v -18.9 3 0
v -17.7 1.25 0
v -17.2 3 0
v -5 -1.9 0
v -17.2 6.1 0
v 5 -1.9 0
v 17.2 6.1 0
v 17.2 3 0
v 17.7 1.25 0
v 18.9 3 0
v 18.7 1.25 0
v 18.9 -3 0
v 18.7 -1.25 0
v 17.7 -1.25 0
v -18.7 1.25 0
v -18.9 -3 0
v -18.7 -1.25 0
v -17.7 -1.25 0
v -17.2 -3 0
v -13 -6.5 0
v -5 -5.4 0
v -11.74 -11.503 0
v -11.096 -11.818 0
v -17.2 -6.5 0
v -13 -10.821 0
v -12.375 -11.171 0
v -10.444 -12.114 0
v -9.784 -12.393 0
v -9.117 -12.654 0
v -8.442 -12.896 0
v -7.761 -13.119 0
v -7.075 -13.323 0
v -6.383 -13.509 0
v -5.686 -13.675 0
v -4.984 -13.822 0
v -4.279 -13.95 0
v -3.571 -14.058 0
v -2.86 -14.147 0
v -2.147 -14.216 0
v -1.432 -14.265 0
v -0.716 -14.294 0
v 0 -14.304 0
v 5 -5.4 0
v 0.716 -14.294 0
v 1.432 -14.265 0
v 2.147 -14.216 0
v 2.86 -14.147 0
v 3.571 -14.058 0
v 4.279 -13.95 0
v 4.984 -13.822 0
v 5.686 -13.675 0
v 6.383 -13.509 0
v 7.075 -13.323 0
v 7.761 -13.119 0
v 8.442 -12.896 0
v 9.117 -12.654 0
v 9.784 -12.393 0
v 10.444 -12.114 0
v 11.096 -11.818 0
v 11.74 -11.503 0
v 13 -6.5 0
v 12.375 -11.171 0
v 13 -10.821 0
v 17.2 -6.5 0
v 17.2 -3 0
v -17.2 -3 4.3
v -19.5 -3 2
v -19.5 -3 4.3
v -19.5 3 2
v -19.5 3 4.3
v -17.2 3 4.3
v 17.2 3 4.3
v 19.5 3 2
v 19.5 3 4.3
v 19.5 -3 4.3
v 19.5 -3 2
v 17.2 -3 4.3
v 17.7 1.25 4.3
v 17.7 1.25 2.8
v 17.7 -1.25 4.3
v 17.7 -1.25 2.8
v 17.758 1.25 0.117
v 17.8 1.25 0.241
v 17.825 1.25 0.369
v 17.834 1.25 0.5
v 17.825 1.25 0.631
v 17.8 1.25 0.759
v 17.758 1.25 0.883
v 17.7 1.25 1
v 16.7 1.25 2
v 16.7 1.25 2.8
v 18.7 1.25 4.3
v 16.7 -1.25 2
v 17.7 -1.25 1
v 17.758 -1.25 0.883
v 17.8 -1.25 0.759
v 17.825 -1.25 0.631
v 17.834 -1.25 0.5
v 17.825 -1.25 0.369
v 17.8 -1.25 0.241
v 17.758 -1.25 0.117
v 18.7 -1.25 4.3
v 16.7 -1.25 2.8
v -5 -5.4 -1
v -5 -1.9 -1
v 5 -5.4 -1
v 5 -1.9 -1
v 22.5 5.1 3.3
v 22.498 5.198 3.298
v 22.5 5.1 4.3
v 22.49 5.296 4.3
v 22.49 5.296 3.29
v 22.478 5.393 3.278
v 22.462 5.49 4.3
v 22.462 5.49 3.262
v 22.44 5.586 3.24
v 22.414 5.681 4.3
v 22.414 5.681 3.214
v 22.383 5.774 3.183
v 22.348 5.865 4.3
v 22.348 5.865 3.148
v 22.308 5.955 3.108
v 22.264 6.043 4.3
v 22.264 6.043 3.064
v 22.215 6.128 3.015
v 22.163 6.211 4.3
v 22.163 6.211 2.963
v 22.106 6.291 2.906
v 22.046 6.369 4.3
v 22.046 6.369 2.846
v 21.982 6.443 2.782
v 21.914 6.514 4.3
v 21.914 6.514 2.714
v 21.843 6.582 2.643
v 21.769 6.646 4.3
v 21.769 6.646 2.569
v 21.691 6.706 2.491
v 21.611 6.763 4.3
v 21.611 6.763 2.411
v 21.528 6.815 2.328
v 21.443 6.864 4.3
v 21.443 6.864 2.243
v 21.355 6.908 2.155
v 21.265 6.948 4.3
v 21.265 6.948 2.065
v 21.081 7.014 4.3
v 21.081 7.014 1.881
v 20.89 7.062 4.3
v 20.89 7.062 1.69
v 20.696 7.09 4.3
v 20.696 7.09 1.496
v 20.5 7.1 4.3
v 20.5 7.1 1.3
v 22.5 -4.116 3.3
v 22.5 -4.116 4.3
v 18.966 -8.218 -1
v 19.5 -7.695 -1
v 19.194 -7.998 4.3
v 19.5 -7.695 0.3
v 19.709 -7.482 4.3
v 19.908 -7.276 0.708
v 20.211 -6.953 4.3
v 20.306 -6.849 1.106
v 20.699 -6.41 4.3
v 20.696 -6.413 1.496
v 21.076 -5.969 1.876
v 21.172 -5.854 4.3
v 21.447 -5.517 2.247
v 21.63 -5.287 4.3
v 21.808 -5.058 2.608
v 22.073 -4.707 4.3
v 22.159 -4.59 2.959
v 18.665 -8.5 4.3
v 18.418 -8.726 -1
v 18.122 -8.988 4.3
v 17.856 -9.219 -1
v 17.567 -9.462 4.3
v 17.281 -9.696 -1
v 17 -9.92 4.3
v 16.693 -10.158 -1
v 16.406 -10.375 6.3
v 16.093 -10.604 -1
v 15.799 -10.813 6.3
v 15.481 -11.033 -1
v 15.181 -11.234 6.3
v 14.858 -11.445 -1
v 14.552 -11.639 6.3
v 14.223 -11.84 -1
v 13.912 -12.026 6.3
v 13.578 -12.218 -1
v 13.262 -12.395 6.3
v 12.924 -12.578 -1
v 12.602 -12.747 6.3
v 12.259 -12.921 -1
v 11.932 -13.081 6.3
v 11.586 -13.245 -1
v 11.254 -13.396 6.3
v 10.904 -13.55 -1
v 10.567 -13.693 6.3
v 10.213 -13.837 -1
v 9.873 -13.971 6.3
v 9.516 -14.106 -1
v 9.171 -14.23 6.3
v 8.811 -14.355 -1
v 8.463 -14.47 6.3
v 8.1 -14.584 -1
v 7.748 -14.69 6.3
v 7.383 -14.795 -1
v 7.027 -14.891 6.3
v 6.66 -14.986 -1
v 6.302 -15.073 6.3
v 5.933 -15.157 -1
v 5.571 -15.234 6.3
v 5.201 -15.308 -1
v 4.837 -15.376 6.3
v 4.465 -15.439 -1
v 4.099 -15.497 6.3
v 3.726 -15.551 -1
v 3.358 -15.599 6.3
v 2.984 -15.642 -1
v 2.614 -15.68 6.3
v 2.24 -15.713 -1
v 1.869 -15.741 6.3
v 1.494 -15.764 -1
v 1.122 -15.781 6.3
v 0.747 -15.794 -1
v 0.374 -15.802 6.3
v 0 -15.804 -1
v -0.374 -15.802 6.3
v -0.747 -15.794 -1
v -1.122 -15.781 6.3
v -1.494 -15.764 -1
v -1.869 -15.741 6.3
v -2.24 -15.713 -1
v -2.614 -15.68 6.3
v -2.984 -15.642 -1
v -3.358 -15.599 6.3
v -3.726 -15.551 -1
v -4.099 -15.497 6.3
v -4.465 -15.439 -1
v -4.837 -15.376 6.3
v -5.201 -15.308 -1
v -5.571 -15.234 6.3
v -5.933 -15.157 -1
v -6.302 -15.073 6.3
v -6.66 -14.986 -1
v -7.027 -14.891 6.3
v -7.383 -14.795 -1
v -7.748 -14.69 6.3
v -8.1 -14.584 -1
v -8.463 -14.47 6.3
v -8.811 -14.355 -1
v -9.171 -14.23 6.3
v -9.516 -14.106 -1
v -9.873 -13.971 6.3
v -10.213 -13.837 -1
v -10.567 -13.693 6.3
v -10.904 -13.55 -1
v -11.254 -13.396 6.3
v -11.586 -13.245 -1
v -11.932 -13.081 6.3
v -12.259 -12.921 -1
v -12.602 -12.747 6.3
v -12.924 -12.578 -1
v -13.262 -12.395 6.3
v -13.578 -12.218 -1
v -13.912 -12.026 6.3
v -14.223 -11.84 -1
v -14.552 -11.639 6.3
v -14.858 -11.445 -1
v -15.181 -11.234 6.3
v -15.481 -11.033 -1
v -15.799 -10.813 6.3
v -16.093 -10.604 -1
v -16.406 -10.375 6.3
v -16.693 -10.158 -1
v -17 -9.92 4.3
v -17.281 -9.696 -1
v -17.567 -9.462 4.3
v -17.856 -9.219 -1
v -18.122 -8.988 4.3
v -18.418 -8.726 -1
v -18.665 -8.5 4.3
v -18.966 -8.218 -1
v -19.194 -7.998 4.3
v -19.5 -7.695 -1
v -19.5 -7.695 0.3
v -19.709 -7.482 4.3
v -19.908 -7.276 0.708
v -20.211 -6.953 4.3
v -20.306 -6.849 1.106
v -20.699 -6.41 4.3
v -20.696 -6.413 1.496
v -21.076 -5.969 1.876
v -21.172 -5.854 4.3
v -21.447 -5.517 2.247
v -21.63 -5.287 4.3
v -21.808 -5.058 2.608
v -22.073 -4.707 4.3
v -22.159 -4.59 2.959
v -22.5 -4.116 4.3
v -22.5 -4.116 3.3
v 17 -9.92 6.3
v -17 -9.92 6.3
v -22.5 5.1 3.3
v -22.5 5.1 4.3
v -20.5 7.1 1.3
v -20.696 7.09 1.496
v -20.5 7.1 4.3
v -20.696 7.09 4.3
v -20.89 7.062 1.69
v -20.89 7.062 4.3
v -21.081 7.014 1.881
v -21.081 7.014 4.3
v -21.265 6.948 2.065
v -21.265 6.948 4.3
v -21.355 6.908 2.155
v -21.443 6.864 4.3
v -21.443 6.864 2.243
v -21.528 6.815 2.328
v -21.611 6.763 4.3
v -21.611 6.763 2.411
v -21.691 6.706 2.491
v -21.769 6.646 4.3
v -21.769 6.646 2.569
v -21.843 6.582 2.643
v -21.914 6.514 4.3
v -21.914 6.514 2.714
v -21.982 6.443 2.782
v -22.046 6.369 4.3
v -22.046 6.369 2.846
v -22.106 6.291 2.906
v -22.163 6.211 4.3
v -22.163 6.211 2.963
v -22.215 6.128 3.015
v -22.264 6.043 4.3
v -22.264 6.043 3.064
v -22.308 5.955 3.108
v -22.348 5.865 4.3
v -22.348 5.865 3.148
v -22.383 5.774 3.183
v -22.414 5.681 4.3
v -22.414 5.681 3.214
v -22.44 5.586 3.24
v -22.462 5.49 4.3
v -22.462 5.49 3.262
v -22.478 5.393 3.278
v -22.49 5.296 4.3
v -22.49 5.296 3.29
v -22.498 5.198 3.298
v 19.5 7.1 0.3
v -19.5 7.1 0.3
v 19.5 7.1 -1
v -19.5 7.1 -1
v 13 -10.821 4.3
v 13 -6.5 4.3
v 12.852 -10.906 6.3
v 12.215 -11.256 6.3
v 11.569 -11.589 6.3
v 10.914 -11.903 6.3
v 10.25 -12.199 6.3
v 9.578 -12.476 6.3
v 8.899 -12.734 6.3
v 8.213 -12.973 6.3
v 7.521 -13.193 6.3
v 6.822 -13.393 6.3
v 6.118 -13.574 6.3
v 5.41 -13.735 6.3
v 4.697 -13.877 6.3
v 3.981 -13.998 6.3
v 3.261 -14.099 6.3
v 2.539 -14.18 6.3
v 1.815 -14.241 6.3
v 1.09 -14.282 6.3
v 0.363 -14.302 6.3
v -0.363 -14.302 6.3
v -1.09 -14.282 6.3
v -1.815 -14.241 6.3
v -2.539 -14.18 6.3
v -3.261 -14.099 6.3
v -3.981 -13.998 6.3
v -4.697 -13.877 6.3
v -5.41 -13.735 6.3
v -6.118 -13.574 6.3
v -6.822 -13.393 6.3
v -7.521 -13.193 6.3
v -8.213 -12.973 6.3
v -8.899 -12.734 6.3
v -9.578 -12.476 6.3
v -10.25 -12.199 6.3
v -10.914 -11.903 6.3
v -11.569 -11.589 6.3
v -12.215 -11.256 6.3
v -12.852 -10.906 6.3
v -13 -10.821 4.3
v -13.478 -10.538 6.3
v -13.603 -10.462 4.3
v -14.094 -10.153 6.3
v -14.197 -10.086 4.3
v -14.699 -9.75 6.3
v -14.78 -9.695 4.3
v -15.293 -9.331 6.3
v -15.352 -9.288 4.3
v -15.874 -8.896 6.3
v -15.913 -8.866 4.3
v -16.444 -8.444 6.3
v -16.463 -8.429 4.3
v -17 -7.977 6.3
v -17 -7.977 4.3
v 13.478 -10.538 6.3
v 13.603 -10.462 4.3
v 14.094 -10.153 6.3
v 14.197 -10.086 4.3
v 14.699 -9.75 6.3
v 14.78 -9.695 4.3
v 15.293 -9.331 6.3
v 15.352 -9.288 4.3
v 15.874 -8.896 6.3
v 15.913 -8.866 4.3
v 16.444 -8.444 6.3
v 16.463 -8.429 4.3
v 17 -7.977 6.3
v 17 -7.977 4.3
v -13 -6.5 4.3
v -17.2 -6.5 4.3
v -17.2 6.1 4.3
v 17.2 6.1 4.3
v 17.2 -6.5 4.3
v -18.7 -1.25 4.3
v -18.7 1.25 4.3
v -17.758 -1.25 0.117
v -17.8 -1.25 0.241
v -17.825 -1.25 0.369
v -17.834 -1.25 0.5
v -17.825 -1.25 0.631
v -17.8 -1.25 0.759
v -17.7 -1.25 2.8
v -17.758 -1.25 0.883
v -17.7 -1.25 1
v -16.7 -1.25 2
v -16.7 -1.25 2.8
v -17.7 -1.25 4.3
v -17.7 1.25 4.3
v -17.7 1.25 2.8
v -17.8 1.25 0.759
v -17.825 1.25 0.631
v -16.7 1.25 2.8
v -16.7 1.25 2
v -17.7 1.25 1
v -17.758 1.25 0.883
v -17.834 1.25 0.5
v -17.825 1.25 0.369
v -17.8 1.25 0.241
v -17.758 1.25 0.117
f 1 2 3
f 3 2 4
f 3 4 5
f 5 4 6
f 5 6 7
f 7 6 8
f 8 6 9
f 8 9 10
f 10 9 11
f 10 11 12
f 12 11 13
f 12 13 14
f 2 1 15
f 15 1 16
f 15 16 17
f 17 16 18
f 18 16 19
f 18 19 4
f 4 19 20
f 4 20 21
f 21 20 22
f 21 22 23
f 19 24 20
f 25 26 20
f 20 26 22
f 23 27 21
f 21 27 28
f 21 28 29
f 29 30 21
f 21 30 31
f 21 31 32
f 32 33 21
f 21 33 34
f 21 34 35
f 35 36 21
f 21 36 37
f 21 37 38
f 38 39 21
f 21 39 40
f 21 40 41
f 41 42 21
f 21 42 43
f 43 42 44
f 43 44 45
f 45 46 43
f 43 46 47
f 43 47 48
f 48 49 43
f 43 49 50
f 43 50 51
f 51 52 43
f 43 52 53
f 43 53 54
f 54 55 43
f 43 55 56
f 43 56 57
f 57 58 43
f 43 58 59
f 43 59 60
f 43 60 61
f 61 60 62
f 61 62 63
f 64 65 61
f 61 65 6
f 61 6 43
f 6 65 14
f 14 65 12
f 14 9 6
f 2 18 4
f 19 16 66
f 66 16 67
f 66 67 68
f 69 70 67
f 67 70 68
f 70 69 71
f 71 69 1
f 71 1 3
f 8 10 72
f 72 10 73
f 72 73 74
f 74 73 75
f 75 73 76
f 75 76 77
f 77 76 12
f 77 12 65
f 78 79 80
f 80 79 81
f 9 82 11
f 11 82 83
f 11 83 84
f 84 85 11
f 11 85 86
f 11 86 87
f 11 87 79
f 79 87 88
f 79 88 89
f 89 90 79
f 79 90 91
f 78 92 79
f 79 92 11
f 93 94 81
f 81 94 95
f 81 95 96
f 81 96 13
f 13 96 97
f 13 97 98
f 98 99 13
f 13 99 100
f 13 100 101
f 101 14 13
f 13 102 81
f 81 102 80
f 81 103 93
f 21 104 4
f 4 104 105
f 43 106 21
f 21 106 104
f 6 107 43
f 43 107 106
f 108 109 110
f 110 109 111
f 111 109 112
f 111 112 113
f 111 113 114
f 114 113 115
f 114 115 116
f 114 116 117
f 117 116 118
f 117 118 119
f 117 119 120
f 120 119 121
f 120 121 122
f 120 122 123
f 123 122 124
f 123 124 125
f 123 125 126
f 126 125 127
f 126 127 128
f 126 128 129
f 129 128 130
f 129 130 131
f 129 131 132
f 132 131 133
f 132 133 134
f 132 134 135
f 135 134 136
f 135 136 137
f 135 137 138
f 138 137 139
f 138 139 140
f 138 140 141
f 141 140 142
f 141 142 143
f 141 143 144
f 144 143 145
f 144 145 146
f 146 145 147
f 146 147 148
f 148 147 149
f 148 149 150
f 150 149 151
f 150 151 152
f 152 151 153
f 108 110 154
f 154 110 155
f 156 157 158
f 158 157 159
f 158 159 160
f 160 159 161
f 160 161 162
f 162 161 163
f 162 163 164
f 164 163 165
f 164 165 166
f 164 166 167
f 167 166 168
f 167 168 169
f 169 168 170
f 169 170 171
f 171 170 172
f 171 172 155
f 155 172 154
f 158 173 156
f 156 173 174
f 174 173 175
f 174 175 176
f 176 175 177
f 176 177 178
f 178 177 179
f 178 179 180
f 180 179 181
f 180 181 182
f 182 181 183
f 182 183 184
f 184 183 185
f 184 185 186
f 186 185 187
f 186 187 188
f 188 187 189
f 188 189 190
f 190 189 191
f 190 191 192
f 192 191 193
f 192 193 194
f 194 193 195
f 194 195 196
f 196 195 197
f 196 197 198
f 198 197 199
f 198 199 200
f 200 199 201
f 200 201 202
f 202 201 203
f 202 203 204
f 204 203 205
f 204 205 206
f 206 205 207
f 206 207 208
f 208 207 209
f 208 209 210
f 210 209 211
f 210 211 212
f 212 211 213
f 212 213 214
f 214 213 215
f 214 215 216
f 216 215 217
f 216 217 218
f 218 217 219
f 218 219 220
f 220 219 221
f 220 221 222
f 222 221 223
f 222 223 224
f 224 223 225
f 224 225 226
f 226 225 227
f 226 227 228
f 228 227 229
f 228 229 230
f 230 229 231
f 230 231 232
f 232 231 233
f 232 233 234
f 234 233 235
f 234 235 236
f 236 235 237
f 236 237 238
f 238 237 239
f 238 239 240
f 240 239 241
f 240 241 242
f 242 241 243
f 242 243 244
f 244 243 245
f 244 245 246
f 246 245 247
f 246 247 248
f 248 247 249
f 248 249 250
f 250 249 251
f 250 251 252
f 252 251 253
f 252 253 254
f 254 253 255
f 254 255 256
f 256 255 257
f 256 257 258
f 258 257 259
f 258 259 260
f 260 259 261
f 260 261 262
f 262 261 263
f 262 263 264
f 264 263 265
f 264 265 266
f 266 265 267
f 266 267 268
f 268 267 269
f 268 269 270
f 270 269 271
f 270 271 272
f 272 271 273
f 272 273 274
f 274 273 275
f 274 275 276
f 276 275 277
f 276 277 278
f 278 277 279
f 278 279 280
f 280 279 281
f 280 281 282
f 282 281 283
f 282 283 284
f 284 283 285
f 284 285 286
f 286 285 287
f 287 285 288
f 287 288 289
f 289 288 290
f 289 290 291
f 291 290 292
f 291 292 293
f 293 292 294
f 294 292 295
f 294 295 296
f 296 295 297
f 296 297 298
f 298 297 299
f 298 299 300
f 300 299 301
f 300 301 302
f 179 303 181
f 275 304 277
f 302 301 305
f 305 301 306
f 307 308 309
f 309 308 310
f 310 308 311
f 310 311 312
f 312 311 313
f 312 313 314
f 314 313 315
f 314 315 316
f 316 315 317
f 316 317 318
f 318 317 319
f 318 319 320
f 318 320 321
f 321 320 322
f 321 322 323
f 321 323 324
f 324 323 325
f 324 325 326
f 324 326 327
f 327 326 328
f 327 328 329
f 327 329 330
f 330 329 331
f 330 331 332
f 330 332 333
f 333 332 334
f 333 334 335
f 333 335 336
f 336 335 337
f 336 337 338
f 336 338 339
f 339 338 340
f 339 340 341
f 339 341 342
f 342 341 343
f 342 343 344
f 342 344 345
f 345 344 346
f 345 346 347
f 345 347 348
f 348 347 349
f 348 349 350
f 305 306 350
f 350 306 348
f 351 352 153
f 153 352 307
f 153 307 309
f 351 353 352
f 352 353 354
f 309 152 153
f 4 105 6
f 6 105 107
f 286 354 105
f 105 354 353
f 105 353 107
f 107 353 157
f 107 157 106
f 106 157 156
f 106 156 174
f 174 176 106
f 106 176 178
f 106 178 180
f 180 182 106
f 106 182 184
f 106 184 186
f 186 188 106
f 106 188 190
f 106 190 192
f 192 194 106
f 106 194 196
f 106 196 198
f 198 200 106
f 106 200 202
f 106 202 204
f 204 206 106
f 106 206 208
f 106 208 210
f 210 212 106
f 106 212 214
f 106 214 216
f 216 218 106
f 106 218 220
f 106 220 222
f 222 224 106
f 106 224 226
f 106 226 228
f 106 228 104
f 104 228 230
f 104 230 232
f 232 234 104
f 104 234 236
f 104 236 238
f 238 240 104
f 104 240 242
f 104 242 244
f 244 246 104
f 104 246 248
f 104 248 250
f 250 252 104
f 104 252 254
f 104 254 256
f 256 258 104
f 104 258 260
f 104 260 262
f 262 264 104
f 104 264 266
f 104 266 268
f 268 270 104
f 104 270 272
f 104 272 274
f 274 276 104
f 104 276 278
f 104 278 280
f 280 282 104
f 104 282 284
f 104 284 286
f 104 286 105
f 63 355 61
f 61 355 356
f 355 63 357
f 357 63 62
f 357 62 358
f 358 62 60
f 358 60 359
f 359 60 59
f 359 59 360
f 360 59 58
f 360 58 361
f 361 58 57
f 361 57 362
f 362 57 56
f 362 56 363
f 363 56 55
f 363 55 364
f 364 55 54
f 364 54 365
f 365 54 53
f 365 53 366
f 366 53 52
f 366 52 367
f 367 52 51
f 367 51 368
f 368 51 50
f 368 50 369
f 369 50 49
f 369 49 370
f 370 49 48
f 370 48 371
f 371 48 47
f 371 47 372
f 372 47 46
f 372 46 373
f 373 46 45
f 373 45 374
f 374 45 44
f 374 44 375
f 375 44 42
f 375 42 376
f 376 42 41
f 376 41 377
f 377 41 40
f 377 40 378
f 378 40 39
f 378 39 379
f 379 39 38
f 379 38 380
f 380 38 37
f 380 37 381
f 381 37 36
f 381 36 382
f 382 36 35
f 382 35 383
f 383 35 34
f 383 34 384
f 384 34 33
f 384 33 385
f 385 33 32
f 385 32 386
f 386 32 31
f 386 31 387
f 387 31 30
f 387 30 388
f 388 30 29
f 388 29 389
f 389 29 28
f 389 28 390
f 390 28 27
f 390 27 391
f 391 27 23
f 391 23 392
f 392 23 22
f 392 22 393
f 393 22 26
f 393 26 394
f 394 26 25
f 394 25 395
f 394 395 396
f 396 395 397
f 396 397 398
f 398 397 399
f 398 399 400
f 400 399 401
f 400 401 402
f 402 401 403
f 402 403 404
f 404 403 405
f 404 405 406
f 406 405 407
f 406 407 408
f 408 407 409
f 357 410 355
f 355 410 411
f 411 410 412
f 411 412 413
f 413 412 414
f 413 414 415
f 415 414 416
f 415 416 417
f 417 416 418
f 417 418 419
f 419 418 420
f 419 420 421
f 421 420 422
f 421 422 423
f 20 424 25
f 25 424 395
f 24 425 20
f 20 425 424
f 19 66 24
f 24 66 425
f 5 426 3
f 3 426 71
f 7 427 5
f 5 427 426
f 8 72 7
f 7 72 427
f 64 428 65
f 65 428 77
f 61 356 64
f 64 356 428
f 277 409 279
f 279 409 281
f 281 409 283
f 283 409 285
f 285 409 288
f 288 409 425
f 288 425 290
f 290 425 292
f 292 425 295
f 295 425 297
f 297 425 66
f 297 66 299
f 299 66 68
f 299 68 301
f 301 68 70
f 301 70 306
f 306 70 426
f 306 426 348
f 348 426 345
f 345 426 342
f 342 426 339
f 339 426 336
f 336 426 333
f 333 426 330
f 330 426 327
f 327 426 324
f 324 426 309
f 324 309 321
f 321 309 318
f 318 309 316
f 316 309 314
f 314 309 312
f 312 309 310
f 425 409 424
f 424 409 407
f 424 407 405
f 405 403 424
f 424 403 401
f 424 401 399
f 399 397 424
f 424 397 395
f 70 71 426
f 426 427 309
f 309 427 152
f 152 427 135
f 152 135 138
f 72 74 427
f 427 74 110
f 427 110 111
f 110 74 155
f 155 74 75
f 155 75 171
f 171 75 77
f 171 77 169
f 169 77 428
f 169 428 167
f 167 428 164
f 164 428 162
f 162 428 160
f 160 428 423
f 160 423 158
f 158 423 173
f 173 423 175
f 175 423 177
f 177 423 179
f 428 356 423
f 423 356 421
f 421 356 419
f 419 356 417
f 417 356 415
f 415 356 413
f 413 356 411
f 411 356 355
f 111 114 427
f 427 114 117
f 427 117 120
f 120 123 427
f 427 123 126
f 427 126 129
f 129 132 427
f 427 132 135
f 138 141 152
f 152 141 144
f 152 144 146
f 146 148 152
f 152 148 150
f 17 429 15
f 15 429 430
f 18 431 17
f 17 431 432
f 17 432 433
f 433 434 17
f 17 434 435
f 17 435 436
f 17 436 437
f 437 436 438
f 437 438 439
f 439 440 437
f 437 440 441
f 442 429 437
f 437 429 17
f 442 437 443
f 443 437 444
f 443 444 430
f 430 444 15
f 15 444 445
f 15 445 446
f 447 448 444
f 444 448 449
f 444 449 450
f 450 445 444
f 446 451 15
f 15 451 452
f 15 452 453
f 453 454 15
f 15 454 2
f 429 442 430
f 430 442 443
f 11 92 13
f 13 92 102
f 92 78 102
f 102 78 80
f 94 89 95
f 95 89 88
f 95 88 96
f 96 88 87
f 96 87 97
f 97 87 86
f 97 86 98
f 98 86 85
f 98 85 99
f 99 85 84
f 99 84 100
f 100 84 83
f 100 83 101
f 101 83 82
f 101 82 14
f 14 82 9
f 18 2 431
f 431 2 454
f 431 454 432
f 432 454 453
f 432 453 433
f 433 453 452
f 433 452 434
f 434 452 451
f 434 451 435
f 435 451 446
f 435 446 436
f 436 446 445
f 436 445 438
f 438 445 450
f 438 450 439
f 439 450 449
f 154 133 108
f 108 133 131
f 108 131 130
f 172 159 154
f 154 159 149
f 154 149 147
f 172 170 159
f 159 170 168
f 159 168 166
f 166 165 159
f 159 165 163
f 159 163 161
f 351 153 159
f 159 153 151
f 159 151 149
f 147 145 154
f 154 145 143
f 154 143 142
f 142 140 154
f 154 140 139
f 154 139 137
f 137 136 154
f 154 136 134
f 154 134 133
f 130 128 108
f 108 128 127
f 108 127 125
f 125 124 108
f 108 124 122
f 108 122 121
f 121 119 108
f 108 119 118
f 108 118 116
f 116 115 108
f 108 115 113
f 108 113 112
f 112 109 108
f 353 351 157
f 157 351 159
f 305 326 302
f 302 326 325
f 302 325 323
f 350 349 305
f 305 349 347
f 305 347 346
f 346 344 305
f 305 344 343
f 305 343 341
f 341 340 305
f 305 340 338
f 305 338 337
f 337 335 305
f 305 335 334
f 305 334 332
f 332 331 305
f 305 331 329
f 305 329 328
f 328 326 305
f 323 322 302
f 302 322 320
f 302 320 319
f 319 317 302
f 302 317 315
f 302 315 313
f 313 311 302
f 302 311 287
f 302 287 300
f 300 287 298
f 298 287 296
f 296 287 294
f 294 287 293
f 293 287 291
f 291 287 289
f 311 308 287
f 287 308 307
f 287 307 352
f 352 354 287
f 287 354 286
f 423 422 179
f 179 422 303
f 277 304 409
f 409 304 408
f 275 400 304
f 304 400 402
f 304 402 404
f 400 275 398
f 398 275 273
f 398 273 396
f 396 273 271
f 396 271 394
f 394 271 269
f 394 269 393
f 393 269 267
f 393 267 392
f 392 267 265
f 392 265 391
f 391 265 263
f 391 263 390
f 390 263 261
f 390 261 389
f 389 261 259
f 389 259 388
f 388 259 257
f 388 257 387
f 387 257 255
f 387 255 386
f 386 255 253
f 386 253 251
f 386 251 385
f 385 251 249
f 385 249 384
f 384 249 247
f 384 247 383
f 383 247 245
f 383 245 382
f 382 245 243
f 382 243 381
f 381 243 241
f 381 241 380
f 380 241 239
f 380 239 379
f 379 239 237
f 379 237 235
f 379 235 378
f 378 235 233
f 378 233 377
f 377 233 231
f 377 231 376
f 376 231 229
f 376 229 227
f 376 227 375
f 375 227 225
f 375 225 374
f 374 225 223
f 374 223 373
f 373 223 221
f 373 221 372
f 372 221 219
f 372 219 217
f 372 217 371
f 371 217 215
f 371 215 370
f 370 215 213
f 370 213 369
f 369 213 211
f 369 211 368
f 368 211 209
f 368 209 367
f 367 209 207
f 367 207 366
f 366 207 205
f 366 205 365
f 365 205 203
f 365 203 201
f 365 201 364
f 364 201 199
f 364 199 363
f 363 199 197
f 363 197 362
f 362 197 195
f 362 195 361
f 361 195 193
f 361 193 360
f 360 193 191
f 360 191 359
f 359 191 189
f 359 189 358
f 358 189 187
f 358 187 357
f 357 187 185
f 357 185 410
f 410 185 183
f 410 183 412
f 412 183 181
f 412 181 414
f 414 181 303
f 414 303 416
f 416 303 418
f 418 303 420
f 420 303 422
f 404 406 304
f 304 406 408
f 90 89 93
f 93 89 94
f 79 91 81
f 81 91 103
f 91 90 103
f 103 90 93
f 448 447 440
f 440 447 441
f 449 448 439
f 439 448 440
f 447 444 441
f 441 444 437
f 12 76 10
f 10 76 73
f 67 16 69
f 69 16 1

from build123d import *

# Parameters (mm, degrees)
SKETCH1_W           = 1
SKETCH1_H           = 2.5
SKETCH1_W_2         = 10
SKETCH1_H_2         = 3.5
BOSS_EXTRUDE1_DEPTH = 1
BOSS_EXTRUDE2_START = 4.3
SKETCH1_3_W         = 1
SKETCH1_3_H         = 2.5
BOSS_EXTRUDE2_DEPTH = 4.3
CUT_EXTRUDE1_REACH  = 29.14
CUT_EXTRUDE2_DEPTH  = 33.393667716
BOSS_EXTRUDE4_START = 2
BOSS_EXTRUDE4_DEPTH = 2
SKETCH3_5_W         = 1
SKETCH3_5_H         = 0.8
BOSS_EXTRUDE5_DEPTH = 2.5
BOSS_EXTRUDE6_REACH = 31.992


with BuildPart() as part:
    # Sketch1 → Boss-Extrude1 (new body)
    # profile 1 of 4: a face of its own
    with BuildSketch(Plane(origin=(0, 0, 0), x_dir=(-1, 0, 0), z_dir=(0, 0, 1))):
        with BuildLine():
            ThreePointArc((-20.5, -7.1), (-21.914213562, -6.514213562), (-22.5, -5.1))
            Line((-22.5, -5.1), (-22.5, 4.115748324))
            ThreePointArc((-22.5, 4.115748324), (0, 15.804360023), (22.5, 4.115748324))
            Line((22.5, 4.115748324), (22.5, -5.1))
            ThreePointArc((22.5, -5.1), (21.914213562, -6.514213562), (20.5, -7.1))
            Line((20.5, -7.1), (-20.5, -7.1))
        make_face()
        with BuildLine():
            Line((-13, 6.5), (-13, 10.821020521))
            ThreePointArc((-13, 10.821020521), (0, 14.304360023), (13, 10.821020521))
            Line((13, 10.821020521), (13, 6.5))
            Line((13, 6.5), (17.2, 6.5))
            Line((17.2, 6.5), (17.2, 3))
            Line((17.2, 3), (19.5, 3))
            Line((19.5, 3), (19.5, -3))
            Line((19.5, -3), (17.2, -3))
            Line((17.2, -3), (17.2, -6.1))
            Line((17.2, -6.1), (-17.2, -6.1))
            Line((-17.2, -6.1), (-17.2, -3))
            Line((-17.2, -3), (-19.5, -3))
            Line((-19.5, -3), (-19.5, 3))
            Line((-19.5, 3), (-17.2, 3))
            Line((-17.2, 3), (-17.2, 6.5))
            Line((-17.2, 6.5), (-13, 6.5))
        make_face(mode=Mode.SUBTRACT)
    # profile 2 of 4: a face of its own
    with BuildSketch(Plane(origin=(0, 0, 0), x_dir=(-1, 0, 0), z_dir=(0, 0, 1))):
        with BuildLine():
            ThreePointArc((-13, 10.821020521), (0, 14.304360023), (13, 10.821020521))
            Line((13, 10.821020521), (13, 6.5))
            Line((13, 6.5), (17.2, 6.5))
            Line((17.2, 6.5), (17.2, 3))
            Line((17.2, 3), (19.5, 3))
            Line((19.5, 3), (19.5, -3))
            Line((19.5, -3), (17.2, -3))
            Line((17.2, -3), (17.2, -6.1))
            Line((17.2, -6.1), (-17.2, -6.1))
            Line((-17.2, -6.1), (-17.2, -3))
            Line((-17.2, -3), (-19.5, -3))
            Line((-19.5, -3), (-19.5, 3))
            Line((-19.5, 3), (-17.2, 3))
            Line((-17.2, 3), (-17.2, 6.5))
            Line((-17.2, 6.5), (-13, 6.5))
            Line((-13, 6.5), (-13, 10.821020521))
        make_face()
        with Locations((-18.2, 0)):
            Rectangle(SKETCH1_W, SKETCH1_H, mode=Mode.SUBTRACT)
        with Locations((0, 3.65)):
            Rectangle(SKETCH1_W_2, SKETCH1_H_2, mode=Mode.SUBTRACT)
        with Locations((18.2, 0)):
            Rectangle(SKETCH1_W, SKETCH1_H, mode=Mode.SUBTRACT)
    # profile 3 of 4: a face of its own
    with BuildSketch(Plane(origin=(0, 0, 0), x_dir=(-1, 0, 0), z_dir=(0, 0, 1))):
        with Locations((18.2, 0)):
            Rectangle(SKETCH1_W, SKETCH1_H)
    # profile 4 of 4: a face of its own
    with BuildSketch(Plane(origin=(0, 0, 0), x_dir=(-1, 0, 0), z_dir=(0, 0, 1))):
        with Locations((-18.2, 0)):
            Rectangle(SKETCH1_W, SKETCH1_H)
    extrude(amount=-BOSS_EXTRUDE1_DEPTH)

    # Sketch1<3> → Boss-Extrude2 (add)
    # profile 1 of 3: a face of its own
    with BuildSketch(Plane(origin=(0, 0, 0), x_dir=(-1, 0, 0), z_dir=(0, 0, 1)).offset(BOSS_EXTRUDE2_START)):
        with BuildLine():
            ThreePointArc((-20.5, -7.1), (-21.914213562, -6.514213562), (-22.5, -5.1))
            Line((-22.5, -5.1), (-22.5, 4.115748324))
            ThreePointArc((-22.5, 4.115748324), (0, 15.804360023), (22.5, 4.115748324))
            Line((22.5, 4.115748324), (22.5, -5.1))
            ThreePointArc((22.5, -5.1), (21.914213562, -6.514213562), (20.5, -7.1))
            Line((20.5, -7.1), (-20.5, -7.1))
        make_face()
        with BuildLine():
            Line((-13, 6.5), (-13, 10.821020521))
            ThreePointArc((-13, 10.821020521), (0, 14.304360023), (13, 10.821020521))
            Line((13, 10.821020521), (13, 6.5))
            Line((13, 6.5), (17.2, 6.5))
            Line((17.2, 6.5), (17.2, 3))
            Line((17.2, 3), (19.5, 3))
            Line((19.5, 3), (19.5, -3))
            Line((19.5, -3), (17.2, -3))
            Line((17.2, -3), (17.2, -6.1))
            Line((17.2, -6.1), (-17.2, -6.1))
            Line((-17.2, -6.1), (-17.2, -3))
            Line((-17.2, -3), (-19.5, -3))
            Line((-19.5, -3), (-19.5, 3))
            Line((-19.5, 3), (-17.2, 3))
            Line((-17.2, 3), (-17.2, 6.5))
            Line((-17.2, 6.5), (-13, 6.5))
        make_face(mode=Mode.SUBTRACT)
    # profile 2 of 3: a face of its own
    with BuildSketch(Plane(origin=(0, 0, 0), x_dir=(-1, 0, 0), z_dir=(0, 0, 1)).offset(BOSS_EXTRUDE2_START)):
        with Locations((18.2, 0)):
            Rectangle(SKETCH1_3_W, SKETCH1_3_H)
    # profile 3 of 3: a face of its own
    with BuildSketch(Plane(origin=(0, 0, 0), x_dir=(-1, 0, 0), z_dir=(0, 0, 1)).offset(BOSS_EXTRUDE2_START)):
        with Locations((-18.2, 0)):
            Rectangle(SKETCH1_3_W, SKETCH1_3_H)
    extrude(amount=-BOSS_EXTRUDE2_DEPTH)

    # Sketch3 → Cut-Extrude1 (cut, up to next)
    with BuildSketch(Plane.XZ.offset(1.25), mode=Mode.PRIVATE) as cut_extrude1_sk1:
        with BuildLine():
            Line((-17.7, 0), (-17.7, 1))
            ThreePointArc((-17.7, 1), (-17.833974596, 0.5), (-17.7, 0))
        make_face()
    cut_extrude1_tool1 = extrude(cut_extrude1_sk1.sketch, amount=-CUT_EXTRUDE1_REACH, mode=Mode.PRIVATE) & part.part
    # Sketch3 → Cut-Extrude1 (cut, up to next)
    with BuildSketch(Plane.XZ.offset(1.25), mode=Mode.PRIVATE) as cut_extrude1_sk2:
        with BuildLine():
            ThreePointArc((17.7, 0), (17.833974596, 0.5), (17.7, 1))
            Line((17.7, 1), (17.7, 0))
        make_face()
    cut_extrude1_tool2 = extrude(cut_extrude1_sk2.sketch, amount=-CUT_EXTRUDE1_REACH, mode=Mode.PRIVATE) & part.part
    add(cut_extrude1_tool1.solids().sort_by_distance((-17.75391, -1.25, 0.5))[0], mode=Mode.SUBTRACT)
    add(cut_extrude1_tool2.solids().sort_by_distance((17.75391, -1.25, 0.5))[0], mode=Mode.SUBTRACT)

    # Sketch4 → Cut-Extrude2 (cut, through all)
    with BuildSketch(Plane(origin=(0, 7.1, 0), x_dir=(1, 0, 0), z_dir=(0, 1, 0))):
        Polygon((19.5, 1), (19.5, -0.3), (22.5, -3.3), (22.5, 1), align=None)
        Polygon((-19.5, -0.3), (-22.5, -3.3), (-22.5, 1), (-19.5, 1), align=None)
    extrude(amount=-CUT_EXTRUDE2_DEPTH, mode=Mode.SUBTRACT)

    # Sketch5 → Boss-Extrude4 (add)
    with BuildSketch(Plane.XY.offset(4.3).offset(BOSS_EXTRUDE4_START)):
        with BuildLine():
            Line((17, -7.976675596), (17, -9.920326344))
            ThreePointArc((17, -9.920326344), (0, -15.804360023), (-17, -9.920326344))
            Line((-17, -9.920326344), (-17, -7.976675596))
            ThreePointArc((-17, -7.976675596), (0, -14.304360023), (17, -7.976675596))
        make_face()
    extrude(amount=-BOSS_EXTRUDE4_DEPTH)

    # Sketch3<5> → Boss-Extrude5 (add)
    with BuildSketch(Plane.XZ.offset(1.25)):
        with Locations((17.2, 2.4)):
            Rectangle(SKETCH3_5_W, SKETCH3_5_H)
        Polygon((16.7, 2), (17.7, 2), (17.7, 1), align=None)
        with Locations((-17.2, 2.4)):
            Rectangle(SKETCH3_5_W, SKETCH3_5_H)
        Polygon((-16.7, 2), (-17.7, 2), (-17.7, 1), align=None)
    extrude(amount=-BOSS_EXTRUDE5_DEPTH)

    # Sketch6 → Boss-Extrude6 (add, up to next)
    with BuildSketch(Plane.XZ.offset(-3), mode=Mode.PRIVATE) as boss_extrude6_sk1:
        Polygon((19.5, 2), (19.5, 0), (18.9, 0), align=None)
    boss_extrude6_tool1 = extrude(boss_extrude6_sk1.sketch, amount=BOSS_EXTRUDE6_REACH, mode=Mode.PRIVATE) - part.part
    # Sketch6 → Boss-Extrude6 (add, up to next)
    with BuildSketch(Plane.XZ.offset(-3), mode=Mode.PRIVATE) as boss_extrude6_sk2:
        Polygon((-18.9, 0), (-19.5, 2), (-19.5, 0), align=None)
    boss_extrude6_tool2 = extrude(boss_extrude6_sk2.sketch, amount=BOSS_EXTRUDE6_REACH, mode=Mode.PRIVATE) - part.part
    add(boss_extrude6_tool1.solids().sort_by_distance((19.3, 3, 0.666667))[0])
    add(boss_extrude6_tool2.solids().sort_by_distance((-19.3, 3, 0.666667))[0])


solid = part.part
